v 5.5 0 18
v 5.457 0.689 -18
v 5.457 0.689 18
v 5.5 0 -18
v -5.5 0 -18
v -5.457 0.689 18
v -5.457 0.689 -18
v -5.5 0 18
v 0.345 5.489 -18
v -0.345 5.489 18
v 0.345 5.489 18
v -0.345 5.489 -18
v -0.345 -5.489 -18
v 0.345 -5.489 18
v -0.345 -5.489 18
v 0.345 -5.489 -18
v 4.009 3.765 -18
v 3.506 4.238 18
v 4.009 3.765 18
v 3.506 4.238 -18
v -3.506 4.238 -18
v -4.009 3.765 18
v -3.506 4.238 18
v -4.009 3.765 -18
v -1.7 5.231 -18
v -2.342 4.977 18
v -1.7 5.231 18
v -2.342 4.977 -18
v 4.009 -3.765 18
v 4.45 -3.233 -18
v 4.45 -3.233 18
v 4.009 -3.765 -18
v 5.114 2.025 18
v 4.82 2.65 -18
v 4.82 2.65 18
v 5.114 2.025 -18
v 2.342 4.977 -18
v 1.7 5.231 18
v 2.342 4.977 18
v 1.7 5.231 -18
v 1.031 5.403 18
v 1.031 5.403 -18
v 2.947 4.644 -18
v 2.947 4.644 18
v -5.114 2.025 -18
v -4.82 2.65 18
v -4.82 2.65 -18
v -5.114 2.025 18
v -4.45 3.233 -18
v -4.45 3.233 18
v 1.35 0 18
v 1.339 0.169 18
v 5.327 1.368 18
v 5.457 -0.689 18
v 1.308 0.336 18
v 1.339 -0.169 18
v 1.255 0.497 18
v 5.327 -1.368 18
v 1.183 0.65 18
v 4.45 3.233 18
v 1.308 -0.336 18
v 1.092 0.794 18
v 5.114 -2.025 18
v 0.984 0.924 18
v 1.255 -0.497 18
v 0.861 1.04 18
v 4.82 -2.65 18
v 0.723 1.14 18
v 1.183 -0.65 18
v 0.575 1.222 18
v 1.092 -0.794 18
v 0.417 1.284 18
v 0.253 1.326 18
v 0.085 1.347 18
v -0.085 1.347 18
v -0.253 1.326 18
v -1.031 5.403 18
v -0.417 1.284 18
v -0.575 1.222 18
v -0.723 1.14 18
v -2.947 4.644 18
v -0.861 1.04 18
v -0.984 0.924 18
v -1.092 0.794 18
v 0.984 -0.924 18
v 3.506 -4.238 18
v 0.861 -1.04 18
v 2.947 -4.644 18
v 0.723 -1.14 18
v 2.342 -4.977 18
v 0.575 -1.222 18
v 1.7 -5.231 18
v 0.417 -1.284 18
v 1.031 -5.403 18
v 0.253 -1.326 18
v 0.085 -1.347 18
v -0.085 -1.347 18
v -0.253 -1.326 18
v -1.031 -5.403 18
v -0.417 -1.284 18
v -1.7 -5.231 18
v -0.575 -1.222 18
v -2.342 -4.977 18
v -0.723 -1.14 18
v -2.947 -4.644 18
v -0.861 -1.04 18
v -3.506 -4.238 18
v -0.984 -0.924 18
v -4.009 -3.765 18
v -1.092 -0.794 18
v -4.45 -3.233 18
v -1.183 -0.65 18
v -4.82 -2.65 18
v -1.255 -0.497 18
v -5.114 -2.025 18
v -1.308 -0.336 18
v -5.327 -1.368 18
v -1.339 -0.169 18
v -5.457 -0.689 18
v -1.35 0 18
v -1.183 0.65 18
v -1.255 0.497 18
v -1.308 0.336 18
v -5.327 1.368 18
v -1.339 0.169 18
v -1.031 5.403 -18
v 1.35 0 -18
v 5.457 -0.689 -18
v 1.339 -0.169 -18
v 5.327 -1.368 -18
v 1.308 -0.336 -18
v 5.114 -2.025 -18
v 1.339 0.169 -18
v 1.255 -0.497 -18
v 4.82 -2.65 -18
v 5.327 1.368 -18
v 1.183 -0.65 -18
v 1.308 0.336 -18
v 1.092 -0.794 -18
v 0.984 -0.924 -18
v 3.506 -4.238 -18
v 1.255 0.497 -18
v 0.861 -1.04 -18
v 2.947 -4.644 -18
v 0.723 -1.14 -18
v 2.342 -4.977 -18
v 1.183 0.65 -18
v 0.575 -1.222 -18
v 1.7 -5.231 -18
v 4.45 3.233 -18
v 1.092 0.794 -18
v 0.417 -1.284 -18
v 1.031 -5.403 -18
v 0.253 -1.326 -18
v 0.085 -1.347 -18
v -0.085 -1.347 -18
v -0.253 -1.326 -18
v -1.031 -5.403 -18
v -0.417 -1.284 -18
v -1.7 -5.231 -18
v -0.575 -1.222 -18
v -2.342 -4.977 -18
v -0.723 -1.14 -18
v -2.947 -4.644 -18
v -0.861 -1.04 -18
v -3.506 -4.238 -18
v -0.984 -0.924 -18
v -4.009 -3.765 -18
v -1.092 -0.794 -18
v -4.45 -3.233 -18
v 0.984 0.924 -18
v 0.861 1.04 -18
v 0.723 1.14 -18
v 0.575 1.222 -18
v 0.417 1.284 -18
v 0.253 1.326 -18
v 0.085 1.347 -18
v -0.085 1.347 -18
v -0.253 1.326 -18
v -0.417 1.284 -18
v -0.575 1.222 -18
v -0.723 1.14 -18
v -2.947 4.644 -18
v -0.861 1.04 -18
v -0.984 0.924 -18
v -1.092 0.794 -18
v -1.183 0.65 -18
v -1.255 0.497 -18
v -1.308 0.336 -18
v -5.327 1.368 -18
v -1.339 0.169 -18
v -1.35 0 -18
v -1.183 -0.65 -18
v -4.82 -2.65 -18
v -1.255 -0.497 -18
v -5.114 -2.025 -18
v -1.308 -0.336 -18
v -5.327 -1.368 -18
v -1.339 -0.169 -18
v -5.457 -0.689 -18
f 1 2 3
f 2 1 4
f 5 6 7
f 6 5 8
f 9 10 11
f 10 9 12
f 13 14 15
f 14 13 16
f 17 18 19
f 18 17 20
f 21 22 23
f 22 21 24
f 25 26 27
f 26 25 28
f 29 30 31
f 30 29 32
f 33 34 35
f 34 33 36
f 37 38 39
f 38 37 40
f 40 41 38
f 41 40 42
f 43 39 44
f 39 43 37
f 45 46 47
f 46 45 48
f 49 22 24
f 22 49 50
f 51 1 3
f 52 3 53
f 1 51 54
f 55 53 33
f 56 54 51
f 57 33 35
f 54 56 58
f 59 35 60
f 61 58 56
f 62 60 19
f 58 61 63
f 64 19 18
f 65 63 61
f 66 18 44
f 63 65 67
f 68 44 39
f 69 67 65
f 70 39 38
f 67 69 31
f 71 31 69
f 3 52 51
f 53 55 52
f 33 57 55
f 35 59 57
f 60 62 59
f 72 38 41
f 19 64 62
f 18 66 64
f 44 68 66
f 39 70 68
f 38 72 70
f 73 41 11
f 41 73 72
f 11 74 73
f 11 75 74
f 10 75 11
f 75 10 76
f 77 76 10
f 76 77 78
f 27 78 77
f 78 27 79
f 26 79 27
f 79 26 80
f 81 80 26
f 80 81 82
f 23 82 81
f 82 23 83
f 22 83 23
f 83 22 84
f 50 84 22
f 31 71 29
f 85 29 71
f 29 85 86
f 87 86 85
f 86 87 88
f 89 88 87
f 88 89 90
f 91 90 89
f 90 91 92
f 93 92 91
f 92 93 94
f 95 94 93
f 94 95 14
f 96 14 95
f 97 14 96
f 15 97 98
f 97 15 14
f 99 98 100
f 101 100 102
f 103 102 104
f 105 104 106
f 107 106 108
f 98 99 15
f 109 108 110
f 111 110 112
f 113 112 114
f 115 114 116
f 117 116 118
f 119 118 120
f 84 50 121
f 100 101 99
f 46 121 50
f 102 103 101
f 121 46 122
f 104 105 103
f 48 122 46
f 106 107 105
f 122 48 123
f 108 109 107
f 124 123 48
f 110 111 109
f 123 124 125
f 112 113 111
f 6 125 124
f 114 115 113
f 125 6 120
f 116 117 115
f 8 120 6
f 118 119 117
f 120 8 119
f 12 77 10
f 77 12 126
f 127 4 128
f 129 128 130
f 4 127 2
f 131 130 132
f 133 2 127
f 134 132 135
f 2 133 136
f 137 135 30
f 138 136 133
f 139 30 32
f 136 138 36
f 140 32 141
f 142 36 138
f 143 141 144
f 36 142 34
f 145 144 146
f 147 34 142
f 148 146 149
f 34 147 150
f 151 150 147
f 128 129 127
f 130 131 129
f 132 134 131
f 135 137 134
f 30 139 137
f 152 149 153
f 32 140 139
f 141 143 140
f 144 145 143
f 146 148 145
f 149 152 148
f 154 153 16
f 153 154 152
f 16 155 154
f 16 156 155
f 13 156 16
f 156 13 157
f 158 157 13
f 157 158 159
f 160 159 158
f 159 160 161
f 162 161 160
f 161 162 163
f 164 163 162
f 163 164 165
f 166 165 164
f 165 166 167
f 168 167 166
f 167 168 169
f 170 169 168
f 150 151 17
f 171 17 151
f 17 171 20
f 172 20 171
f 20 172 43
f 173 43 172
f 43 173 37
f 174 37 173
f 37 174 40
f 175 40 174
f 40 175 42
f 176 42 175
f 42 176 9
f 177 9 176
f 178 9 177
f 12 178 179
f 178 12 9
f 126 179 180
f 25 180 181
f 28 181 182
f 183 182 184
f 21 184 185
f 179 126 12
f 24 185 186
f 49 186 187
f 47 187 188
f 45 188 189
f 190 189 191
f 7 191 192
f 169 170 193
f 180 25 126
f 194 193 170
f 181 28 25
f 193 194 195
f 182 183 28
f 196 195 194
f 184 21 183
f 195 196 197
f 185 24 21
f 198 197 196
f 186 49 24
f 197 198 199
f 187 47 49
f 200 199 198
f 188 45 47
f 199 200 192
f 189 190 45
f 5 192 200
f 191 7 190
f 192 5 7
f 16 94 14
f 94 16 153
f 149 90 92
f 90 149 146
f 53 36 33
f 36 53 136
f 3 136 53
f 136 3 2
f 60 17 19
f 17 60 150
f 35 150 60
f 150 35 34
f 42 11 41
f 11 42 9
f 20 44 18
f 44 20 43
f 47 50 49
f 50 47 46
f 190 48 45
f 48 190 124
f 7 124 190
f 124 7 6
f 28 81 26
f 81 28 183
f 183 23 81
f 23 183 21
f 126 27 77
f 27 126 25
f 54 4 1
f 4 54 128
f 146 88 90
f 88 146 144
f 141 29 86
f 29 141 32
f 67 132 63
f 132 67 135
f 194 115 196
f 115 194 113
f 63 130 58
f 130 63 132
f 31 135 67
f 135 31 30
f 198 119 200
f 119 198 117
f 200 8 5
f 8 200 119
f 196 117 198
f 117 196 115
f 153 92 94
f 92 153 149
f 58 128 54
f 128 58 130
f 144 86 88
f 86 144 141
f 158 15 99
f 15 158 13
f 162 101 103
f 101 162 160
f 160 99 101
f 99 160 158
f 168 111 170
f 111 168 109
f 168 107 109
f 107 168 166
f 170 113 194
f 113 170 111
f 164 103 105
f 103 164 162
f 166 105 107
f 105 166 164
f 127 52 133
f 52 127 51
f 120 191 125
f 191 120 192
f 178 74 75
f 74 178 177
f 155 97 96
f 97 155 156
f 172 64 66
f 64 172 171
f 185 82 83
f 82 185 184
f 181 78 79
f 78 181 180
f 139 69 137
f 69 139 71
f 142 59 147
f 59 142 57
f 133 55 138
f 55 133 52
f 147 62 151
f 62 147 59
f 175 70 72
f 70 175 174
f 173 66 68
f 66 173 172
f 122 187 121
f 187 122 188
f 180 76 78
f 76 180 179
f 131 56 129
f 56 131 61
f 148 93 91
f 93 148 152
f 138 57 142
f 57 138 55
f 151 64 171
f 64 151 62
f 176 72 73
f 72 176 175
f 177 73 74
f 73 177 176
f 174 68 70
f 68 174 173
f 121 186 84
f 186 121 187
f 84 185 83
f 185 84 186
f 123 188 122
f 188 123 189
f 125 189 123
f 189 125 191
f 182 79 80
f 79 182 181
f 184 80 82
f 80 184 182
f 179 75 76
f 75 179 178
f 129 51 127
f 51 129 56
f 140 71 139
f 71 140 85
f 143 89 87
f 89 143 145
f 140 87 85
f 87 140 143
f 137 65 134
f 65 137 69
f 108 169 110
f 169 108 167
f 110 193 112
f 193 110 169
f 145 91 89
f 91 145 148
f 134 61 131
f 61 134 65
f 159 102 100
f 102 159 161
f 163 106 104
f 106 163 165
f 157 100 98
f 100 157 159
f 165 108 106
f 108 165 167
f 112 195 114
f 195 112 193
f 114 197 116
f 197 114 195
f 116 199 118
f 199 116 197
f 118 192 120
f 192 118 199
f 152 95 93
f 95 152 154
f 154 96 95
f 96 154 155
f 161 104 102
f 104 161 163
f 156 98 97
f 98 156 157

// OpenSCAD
$fn = 50;


difference() {
	union() {
		translate(v = [0, 0, -18.0000000000]) {
			cylinder(h = 36, r = 5.5000000000);
		}
	}
	union() {
		translate(v = [0, 0, -100.0000000000]) {
			cylinder(h = 200, r = 1.3500000000);
		}
	}
}
